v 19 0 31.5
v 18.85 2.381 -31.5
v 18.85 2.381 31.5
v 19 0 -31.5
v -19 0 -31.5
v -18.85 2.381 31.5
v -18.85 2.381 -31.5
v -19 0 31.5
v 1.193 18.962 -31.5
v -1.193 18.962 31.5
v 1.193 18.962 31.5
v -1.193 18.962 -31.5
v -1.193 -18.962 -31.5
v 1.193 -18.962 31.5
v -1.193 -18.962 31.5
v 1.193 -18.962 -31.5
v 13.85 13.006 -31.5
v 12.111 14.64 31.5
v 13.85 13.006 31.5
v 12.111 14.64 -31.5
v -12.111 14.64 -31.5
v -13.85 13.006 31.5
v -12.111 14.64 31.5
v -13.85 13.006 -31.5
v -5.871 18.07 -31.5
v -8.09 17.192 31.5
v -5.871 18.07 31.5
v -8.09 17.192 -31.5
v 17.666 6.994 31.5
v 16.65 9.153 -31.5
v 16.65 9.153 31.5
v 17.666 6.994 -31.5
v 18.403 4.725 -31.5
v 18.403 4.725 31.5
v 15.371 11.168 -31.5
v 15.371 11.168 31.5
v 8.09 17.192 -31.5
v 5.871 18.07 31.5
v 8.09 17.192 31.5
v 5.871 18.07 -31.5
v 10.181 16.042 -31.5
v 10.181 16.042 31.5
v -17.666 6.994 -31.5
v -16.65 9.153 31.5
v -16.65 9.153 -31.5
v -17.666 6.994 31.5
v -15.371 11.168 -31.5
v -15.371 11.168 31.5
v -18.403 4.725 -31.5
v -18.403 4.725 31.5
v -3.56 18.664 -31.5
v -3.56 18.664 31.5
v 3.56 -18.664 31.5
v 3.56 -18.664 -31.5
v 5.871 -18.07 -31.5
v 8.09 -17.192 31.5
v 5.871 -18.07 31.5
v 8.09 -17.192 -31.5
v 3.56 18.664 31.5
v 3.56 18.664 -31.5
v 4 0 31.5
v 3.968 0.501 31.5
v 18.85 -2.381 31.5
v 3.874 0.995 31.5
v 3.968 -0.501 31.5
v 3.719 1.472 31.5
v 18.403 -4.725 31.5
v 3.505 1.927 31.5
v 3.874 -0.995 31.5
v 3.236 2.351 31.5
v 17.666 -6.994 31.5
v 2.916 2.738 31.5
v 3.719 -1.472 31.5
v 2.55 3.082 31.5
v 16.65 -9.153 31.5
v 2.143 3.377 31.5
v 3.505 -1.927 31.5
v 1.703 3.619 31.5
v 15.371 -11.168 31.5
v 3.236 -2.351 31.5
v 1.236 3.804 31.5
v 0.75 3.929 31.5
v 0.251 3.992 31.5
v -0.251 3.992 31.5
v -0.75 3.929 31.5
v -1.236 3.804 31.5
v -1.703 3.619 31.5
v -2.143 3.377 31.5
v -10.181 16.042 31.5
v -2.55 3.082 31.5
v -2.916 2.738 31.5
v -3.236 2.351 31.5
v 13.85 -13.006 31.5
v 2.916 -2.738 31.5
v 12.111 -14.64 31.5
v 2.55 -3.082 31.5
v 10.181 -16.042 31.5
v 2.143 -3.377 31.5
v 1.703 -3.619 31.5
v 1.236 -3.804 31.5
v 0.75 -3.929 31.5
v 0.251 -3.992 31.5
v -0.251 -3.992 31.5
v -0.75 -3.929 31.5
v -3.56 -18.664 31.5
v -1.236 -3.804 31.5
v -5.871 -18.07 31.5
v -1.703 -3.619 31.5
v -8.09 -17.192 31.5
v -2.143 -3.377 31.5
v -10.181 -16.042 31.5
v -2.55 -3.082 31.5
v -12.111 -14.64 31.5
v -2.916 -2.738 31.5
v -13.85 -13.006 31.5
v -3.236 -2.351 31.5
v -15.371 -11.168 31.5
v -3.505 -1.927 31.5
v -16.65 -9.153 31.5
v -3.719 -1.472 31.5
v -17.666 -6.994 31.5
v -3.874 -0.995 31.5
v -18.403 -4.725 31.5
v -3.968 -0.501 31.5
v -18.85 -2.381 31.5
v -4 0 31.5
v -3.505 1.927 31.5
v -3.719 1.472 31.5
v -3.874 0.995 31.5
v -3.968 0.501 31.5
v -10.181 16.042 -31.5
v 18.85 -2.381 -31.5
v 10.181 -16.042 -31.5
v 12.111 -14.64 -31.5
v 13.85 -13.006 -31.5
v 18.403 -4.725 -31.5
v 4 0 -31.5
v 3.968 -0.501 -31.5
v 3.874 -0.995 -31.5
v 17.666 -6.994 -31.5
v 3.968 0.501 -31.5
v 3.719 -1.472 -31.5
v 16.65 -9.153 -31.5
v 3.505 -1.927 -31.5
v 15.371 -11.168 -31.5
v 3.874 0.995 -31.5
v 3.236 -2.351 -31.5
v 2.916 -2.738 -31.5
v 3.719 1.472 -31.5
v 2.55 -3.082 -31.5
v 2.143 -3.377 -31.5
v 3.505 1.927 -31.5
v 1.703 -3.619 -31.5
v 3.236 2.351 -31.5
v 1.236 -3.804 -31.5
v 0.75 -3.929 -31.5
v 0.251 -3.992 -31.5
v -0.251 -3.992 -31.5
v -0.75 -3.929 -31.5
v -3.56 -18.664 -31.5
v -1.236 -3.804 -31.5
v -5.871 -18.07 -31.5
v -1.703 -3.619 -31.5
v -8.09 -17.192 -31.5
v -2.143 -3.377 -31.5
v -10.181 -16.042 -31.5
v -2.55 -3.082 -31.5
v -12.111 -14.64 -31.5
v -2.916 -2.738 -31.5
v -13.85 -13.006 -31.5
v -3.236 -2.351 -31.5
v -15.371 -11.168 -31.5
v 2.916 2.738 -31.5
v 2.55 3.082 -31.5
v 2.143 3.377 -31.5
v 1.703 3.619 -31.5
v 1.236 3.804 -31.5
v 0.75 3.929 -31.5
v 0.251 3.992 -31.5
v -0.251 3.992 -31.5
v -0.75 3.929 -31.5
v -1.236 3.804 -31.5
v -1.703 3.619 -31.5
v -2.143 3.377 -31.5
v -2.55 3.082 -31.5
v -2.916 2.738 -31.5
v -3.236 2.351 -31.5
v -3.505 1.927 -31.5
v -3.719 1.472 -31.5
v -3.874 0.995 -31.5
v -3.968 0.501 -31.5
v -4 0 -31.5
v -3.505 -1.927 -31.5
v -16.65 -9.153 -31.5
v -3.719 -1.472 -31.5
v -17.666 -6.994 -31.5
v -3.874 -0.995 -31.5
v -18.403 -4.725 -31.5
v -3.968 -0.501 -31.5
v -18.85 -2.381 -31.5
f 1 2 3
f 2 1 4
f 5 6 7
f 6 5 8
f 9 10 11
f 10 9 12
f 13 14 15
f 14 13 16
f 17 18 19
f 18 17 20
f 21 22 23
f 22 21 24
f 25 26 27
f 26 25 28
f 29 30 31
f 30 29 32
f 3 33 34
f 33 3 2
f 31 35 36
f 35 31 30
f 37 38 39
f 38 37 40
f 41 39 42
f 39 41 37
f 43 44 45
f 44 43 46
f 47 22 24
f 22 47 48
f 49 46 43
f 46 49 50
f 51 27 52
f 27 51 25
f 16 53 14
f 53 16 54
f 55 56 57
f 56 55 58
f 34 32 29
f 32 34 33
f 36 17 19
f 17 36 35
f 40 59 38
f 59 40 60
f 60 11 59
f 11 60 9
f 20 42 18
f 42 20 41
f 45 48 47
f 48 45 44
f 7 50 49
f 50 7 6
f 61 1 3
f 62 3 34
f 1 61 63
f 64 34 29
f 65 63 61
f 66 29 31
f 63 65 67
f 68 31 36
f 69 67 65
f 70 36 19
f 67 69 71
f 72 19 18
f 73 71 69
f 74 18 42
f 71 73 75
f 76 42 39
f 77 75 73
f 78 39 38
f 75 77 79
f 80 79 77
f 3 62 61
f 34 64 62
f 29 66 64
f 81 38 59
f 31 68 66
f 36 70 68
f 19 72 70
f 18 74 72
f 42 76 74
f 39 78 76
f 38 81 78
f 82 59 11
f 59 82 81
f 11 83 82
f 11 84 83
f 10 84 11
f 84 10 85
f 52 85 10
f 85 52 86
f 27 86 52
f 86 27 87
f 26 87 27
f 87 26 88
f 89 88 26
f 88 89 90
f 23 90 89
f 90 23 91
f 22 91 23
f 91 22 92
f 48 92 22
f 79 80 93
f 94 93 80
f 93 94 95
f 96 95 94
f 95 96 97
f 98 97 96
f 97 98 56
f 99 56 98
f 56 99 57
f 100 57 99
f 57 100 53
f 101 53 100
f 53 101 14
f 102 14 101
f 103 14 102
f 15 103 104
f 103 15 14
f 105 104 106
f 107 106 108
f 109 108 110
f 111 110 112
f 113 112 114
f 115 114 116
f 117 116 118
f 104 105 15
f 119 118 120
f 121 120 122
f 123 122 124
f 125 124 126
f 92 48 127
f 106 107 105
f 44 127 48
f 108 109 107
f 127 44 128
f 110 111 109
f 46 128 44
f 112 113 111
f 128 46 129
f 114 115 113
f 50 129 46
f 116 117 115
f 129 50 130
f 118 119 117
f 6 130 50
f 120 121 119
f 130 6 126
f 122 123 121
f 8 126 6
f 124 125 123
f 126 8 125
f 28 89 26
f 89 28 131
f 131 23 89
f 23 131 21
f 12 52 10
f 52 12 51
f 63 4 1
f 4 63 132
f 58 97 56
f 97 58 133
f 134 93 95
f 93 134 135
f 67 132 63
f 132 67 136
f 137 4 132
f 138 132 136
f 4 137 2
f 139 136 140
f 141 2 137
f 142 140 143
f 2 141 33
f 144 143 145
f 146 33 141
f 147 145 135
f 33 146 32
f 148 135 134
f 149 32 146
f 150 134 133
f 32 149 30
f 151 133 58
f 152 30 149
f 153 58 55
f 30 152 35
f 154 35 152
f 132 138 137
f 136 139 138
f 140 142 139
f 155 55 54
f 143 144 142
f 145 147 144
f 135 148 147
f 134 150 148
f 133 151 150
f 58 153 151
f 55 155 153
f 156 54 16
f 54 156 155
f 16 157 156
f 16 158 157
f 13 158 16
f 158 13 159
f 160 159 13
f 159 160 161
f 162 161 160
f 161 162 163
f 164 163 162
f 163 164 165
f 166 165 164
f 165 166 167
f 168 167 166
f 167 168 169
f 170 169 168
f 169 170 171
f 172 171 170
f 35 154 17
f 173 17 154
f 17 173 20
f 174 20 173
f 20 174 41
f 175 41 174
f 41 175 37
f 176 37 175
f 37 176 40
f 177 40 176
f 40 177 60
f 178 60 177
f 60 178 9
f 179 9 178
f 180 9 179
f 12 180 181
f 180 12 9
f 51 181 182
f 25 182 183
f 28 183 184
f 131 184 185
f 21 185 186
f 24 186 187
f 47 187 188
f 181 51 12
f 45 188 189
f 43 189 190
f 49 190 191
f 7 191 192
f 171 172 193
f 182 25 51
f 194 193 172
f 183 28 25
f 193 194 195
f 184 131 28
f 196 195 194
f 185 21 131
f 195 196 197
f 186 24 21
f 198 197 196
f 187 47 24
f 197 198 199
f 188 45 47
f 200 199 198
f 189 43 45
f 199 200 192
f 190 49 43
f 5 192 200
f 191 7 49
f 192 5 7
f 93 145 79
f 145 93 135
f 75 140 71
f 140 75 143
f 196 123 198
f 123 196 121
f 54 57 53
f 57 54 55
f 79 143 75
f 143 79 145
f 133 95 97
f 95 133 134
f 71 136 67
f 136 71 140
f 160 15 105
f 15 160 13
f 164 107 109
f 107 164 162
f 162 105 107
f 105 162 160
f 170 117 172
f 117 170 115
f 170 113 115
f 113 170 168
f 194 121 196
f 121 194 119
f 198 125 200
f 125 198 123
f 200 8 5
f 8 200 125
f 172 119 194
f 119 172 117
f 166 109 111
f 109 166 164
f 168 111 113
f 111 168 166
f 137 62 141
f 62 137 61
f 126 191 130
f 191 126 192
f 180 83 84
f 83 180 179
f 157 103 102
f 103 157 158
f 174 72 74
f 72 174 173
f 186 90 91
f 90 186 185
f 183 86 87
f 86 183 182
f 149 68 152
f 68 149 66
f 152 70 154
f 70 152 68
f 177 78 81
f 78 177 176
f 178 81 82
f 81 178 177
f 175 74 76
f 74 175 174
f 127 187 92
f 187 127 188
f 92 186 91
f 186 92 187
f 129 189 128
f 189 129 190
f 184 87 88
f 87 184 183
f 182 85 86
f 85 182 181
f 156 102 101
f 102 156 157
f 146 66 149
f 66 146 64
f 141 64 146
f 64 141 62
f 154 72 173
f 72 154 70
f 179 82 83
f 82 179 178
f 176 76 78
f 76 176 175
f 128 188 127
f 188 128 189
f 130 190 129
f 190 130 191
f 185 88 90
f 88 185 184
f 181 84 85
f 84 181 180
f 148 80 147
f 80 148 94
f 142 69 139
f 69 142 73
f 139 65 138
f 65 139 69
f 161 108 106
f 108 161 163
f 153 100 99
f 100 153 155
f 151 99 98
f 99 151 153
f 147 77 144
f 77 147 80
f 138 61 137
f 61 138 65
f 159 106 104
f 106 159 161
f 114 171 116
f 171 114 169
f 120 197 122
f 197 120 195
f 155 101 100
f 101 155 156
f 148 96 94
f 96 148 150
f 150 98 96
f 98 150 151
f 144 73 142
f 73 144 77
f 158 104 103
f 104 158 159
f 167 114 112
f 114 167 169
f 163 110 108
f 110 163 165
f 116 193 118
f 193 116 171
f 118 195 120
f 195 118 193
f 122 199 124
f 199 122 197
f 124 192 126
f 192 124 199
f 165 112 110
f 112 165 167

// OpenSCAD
$fn = 50;


difference() {
	union() {
		translate(v = [0, 0, -31.5000000000]) {
			cylinder(h = 63, r = 19.0000000000);
		}
	}
	union() {
		translate(v = [0, 0, -100.0000000000]) {
			cylinder(h = 200, r = 4.0000000000);
		}
	}
}
